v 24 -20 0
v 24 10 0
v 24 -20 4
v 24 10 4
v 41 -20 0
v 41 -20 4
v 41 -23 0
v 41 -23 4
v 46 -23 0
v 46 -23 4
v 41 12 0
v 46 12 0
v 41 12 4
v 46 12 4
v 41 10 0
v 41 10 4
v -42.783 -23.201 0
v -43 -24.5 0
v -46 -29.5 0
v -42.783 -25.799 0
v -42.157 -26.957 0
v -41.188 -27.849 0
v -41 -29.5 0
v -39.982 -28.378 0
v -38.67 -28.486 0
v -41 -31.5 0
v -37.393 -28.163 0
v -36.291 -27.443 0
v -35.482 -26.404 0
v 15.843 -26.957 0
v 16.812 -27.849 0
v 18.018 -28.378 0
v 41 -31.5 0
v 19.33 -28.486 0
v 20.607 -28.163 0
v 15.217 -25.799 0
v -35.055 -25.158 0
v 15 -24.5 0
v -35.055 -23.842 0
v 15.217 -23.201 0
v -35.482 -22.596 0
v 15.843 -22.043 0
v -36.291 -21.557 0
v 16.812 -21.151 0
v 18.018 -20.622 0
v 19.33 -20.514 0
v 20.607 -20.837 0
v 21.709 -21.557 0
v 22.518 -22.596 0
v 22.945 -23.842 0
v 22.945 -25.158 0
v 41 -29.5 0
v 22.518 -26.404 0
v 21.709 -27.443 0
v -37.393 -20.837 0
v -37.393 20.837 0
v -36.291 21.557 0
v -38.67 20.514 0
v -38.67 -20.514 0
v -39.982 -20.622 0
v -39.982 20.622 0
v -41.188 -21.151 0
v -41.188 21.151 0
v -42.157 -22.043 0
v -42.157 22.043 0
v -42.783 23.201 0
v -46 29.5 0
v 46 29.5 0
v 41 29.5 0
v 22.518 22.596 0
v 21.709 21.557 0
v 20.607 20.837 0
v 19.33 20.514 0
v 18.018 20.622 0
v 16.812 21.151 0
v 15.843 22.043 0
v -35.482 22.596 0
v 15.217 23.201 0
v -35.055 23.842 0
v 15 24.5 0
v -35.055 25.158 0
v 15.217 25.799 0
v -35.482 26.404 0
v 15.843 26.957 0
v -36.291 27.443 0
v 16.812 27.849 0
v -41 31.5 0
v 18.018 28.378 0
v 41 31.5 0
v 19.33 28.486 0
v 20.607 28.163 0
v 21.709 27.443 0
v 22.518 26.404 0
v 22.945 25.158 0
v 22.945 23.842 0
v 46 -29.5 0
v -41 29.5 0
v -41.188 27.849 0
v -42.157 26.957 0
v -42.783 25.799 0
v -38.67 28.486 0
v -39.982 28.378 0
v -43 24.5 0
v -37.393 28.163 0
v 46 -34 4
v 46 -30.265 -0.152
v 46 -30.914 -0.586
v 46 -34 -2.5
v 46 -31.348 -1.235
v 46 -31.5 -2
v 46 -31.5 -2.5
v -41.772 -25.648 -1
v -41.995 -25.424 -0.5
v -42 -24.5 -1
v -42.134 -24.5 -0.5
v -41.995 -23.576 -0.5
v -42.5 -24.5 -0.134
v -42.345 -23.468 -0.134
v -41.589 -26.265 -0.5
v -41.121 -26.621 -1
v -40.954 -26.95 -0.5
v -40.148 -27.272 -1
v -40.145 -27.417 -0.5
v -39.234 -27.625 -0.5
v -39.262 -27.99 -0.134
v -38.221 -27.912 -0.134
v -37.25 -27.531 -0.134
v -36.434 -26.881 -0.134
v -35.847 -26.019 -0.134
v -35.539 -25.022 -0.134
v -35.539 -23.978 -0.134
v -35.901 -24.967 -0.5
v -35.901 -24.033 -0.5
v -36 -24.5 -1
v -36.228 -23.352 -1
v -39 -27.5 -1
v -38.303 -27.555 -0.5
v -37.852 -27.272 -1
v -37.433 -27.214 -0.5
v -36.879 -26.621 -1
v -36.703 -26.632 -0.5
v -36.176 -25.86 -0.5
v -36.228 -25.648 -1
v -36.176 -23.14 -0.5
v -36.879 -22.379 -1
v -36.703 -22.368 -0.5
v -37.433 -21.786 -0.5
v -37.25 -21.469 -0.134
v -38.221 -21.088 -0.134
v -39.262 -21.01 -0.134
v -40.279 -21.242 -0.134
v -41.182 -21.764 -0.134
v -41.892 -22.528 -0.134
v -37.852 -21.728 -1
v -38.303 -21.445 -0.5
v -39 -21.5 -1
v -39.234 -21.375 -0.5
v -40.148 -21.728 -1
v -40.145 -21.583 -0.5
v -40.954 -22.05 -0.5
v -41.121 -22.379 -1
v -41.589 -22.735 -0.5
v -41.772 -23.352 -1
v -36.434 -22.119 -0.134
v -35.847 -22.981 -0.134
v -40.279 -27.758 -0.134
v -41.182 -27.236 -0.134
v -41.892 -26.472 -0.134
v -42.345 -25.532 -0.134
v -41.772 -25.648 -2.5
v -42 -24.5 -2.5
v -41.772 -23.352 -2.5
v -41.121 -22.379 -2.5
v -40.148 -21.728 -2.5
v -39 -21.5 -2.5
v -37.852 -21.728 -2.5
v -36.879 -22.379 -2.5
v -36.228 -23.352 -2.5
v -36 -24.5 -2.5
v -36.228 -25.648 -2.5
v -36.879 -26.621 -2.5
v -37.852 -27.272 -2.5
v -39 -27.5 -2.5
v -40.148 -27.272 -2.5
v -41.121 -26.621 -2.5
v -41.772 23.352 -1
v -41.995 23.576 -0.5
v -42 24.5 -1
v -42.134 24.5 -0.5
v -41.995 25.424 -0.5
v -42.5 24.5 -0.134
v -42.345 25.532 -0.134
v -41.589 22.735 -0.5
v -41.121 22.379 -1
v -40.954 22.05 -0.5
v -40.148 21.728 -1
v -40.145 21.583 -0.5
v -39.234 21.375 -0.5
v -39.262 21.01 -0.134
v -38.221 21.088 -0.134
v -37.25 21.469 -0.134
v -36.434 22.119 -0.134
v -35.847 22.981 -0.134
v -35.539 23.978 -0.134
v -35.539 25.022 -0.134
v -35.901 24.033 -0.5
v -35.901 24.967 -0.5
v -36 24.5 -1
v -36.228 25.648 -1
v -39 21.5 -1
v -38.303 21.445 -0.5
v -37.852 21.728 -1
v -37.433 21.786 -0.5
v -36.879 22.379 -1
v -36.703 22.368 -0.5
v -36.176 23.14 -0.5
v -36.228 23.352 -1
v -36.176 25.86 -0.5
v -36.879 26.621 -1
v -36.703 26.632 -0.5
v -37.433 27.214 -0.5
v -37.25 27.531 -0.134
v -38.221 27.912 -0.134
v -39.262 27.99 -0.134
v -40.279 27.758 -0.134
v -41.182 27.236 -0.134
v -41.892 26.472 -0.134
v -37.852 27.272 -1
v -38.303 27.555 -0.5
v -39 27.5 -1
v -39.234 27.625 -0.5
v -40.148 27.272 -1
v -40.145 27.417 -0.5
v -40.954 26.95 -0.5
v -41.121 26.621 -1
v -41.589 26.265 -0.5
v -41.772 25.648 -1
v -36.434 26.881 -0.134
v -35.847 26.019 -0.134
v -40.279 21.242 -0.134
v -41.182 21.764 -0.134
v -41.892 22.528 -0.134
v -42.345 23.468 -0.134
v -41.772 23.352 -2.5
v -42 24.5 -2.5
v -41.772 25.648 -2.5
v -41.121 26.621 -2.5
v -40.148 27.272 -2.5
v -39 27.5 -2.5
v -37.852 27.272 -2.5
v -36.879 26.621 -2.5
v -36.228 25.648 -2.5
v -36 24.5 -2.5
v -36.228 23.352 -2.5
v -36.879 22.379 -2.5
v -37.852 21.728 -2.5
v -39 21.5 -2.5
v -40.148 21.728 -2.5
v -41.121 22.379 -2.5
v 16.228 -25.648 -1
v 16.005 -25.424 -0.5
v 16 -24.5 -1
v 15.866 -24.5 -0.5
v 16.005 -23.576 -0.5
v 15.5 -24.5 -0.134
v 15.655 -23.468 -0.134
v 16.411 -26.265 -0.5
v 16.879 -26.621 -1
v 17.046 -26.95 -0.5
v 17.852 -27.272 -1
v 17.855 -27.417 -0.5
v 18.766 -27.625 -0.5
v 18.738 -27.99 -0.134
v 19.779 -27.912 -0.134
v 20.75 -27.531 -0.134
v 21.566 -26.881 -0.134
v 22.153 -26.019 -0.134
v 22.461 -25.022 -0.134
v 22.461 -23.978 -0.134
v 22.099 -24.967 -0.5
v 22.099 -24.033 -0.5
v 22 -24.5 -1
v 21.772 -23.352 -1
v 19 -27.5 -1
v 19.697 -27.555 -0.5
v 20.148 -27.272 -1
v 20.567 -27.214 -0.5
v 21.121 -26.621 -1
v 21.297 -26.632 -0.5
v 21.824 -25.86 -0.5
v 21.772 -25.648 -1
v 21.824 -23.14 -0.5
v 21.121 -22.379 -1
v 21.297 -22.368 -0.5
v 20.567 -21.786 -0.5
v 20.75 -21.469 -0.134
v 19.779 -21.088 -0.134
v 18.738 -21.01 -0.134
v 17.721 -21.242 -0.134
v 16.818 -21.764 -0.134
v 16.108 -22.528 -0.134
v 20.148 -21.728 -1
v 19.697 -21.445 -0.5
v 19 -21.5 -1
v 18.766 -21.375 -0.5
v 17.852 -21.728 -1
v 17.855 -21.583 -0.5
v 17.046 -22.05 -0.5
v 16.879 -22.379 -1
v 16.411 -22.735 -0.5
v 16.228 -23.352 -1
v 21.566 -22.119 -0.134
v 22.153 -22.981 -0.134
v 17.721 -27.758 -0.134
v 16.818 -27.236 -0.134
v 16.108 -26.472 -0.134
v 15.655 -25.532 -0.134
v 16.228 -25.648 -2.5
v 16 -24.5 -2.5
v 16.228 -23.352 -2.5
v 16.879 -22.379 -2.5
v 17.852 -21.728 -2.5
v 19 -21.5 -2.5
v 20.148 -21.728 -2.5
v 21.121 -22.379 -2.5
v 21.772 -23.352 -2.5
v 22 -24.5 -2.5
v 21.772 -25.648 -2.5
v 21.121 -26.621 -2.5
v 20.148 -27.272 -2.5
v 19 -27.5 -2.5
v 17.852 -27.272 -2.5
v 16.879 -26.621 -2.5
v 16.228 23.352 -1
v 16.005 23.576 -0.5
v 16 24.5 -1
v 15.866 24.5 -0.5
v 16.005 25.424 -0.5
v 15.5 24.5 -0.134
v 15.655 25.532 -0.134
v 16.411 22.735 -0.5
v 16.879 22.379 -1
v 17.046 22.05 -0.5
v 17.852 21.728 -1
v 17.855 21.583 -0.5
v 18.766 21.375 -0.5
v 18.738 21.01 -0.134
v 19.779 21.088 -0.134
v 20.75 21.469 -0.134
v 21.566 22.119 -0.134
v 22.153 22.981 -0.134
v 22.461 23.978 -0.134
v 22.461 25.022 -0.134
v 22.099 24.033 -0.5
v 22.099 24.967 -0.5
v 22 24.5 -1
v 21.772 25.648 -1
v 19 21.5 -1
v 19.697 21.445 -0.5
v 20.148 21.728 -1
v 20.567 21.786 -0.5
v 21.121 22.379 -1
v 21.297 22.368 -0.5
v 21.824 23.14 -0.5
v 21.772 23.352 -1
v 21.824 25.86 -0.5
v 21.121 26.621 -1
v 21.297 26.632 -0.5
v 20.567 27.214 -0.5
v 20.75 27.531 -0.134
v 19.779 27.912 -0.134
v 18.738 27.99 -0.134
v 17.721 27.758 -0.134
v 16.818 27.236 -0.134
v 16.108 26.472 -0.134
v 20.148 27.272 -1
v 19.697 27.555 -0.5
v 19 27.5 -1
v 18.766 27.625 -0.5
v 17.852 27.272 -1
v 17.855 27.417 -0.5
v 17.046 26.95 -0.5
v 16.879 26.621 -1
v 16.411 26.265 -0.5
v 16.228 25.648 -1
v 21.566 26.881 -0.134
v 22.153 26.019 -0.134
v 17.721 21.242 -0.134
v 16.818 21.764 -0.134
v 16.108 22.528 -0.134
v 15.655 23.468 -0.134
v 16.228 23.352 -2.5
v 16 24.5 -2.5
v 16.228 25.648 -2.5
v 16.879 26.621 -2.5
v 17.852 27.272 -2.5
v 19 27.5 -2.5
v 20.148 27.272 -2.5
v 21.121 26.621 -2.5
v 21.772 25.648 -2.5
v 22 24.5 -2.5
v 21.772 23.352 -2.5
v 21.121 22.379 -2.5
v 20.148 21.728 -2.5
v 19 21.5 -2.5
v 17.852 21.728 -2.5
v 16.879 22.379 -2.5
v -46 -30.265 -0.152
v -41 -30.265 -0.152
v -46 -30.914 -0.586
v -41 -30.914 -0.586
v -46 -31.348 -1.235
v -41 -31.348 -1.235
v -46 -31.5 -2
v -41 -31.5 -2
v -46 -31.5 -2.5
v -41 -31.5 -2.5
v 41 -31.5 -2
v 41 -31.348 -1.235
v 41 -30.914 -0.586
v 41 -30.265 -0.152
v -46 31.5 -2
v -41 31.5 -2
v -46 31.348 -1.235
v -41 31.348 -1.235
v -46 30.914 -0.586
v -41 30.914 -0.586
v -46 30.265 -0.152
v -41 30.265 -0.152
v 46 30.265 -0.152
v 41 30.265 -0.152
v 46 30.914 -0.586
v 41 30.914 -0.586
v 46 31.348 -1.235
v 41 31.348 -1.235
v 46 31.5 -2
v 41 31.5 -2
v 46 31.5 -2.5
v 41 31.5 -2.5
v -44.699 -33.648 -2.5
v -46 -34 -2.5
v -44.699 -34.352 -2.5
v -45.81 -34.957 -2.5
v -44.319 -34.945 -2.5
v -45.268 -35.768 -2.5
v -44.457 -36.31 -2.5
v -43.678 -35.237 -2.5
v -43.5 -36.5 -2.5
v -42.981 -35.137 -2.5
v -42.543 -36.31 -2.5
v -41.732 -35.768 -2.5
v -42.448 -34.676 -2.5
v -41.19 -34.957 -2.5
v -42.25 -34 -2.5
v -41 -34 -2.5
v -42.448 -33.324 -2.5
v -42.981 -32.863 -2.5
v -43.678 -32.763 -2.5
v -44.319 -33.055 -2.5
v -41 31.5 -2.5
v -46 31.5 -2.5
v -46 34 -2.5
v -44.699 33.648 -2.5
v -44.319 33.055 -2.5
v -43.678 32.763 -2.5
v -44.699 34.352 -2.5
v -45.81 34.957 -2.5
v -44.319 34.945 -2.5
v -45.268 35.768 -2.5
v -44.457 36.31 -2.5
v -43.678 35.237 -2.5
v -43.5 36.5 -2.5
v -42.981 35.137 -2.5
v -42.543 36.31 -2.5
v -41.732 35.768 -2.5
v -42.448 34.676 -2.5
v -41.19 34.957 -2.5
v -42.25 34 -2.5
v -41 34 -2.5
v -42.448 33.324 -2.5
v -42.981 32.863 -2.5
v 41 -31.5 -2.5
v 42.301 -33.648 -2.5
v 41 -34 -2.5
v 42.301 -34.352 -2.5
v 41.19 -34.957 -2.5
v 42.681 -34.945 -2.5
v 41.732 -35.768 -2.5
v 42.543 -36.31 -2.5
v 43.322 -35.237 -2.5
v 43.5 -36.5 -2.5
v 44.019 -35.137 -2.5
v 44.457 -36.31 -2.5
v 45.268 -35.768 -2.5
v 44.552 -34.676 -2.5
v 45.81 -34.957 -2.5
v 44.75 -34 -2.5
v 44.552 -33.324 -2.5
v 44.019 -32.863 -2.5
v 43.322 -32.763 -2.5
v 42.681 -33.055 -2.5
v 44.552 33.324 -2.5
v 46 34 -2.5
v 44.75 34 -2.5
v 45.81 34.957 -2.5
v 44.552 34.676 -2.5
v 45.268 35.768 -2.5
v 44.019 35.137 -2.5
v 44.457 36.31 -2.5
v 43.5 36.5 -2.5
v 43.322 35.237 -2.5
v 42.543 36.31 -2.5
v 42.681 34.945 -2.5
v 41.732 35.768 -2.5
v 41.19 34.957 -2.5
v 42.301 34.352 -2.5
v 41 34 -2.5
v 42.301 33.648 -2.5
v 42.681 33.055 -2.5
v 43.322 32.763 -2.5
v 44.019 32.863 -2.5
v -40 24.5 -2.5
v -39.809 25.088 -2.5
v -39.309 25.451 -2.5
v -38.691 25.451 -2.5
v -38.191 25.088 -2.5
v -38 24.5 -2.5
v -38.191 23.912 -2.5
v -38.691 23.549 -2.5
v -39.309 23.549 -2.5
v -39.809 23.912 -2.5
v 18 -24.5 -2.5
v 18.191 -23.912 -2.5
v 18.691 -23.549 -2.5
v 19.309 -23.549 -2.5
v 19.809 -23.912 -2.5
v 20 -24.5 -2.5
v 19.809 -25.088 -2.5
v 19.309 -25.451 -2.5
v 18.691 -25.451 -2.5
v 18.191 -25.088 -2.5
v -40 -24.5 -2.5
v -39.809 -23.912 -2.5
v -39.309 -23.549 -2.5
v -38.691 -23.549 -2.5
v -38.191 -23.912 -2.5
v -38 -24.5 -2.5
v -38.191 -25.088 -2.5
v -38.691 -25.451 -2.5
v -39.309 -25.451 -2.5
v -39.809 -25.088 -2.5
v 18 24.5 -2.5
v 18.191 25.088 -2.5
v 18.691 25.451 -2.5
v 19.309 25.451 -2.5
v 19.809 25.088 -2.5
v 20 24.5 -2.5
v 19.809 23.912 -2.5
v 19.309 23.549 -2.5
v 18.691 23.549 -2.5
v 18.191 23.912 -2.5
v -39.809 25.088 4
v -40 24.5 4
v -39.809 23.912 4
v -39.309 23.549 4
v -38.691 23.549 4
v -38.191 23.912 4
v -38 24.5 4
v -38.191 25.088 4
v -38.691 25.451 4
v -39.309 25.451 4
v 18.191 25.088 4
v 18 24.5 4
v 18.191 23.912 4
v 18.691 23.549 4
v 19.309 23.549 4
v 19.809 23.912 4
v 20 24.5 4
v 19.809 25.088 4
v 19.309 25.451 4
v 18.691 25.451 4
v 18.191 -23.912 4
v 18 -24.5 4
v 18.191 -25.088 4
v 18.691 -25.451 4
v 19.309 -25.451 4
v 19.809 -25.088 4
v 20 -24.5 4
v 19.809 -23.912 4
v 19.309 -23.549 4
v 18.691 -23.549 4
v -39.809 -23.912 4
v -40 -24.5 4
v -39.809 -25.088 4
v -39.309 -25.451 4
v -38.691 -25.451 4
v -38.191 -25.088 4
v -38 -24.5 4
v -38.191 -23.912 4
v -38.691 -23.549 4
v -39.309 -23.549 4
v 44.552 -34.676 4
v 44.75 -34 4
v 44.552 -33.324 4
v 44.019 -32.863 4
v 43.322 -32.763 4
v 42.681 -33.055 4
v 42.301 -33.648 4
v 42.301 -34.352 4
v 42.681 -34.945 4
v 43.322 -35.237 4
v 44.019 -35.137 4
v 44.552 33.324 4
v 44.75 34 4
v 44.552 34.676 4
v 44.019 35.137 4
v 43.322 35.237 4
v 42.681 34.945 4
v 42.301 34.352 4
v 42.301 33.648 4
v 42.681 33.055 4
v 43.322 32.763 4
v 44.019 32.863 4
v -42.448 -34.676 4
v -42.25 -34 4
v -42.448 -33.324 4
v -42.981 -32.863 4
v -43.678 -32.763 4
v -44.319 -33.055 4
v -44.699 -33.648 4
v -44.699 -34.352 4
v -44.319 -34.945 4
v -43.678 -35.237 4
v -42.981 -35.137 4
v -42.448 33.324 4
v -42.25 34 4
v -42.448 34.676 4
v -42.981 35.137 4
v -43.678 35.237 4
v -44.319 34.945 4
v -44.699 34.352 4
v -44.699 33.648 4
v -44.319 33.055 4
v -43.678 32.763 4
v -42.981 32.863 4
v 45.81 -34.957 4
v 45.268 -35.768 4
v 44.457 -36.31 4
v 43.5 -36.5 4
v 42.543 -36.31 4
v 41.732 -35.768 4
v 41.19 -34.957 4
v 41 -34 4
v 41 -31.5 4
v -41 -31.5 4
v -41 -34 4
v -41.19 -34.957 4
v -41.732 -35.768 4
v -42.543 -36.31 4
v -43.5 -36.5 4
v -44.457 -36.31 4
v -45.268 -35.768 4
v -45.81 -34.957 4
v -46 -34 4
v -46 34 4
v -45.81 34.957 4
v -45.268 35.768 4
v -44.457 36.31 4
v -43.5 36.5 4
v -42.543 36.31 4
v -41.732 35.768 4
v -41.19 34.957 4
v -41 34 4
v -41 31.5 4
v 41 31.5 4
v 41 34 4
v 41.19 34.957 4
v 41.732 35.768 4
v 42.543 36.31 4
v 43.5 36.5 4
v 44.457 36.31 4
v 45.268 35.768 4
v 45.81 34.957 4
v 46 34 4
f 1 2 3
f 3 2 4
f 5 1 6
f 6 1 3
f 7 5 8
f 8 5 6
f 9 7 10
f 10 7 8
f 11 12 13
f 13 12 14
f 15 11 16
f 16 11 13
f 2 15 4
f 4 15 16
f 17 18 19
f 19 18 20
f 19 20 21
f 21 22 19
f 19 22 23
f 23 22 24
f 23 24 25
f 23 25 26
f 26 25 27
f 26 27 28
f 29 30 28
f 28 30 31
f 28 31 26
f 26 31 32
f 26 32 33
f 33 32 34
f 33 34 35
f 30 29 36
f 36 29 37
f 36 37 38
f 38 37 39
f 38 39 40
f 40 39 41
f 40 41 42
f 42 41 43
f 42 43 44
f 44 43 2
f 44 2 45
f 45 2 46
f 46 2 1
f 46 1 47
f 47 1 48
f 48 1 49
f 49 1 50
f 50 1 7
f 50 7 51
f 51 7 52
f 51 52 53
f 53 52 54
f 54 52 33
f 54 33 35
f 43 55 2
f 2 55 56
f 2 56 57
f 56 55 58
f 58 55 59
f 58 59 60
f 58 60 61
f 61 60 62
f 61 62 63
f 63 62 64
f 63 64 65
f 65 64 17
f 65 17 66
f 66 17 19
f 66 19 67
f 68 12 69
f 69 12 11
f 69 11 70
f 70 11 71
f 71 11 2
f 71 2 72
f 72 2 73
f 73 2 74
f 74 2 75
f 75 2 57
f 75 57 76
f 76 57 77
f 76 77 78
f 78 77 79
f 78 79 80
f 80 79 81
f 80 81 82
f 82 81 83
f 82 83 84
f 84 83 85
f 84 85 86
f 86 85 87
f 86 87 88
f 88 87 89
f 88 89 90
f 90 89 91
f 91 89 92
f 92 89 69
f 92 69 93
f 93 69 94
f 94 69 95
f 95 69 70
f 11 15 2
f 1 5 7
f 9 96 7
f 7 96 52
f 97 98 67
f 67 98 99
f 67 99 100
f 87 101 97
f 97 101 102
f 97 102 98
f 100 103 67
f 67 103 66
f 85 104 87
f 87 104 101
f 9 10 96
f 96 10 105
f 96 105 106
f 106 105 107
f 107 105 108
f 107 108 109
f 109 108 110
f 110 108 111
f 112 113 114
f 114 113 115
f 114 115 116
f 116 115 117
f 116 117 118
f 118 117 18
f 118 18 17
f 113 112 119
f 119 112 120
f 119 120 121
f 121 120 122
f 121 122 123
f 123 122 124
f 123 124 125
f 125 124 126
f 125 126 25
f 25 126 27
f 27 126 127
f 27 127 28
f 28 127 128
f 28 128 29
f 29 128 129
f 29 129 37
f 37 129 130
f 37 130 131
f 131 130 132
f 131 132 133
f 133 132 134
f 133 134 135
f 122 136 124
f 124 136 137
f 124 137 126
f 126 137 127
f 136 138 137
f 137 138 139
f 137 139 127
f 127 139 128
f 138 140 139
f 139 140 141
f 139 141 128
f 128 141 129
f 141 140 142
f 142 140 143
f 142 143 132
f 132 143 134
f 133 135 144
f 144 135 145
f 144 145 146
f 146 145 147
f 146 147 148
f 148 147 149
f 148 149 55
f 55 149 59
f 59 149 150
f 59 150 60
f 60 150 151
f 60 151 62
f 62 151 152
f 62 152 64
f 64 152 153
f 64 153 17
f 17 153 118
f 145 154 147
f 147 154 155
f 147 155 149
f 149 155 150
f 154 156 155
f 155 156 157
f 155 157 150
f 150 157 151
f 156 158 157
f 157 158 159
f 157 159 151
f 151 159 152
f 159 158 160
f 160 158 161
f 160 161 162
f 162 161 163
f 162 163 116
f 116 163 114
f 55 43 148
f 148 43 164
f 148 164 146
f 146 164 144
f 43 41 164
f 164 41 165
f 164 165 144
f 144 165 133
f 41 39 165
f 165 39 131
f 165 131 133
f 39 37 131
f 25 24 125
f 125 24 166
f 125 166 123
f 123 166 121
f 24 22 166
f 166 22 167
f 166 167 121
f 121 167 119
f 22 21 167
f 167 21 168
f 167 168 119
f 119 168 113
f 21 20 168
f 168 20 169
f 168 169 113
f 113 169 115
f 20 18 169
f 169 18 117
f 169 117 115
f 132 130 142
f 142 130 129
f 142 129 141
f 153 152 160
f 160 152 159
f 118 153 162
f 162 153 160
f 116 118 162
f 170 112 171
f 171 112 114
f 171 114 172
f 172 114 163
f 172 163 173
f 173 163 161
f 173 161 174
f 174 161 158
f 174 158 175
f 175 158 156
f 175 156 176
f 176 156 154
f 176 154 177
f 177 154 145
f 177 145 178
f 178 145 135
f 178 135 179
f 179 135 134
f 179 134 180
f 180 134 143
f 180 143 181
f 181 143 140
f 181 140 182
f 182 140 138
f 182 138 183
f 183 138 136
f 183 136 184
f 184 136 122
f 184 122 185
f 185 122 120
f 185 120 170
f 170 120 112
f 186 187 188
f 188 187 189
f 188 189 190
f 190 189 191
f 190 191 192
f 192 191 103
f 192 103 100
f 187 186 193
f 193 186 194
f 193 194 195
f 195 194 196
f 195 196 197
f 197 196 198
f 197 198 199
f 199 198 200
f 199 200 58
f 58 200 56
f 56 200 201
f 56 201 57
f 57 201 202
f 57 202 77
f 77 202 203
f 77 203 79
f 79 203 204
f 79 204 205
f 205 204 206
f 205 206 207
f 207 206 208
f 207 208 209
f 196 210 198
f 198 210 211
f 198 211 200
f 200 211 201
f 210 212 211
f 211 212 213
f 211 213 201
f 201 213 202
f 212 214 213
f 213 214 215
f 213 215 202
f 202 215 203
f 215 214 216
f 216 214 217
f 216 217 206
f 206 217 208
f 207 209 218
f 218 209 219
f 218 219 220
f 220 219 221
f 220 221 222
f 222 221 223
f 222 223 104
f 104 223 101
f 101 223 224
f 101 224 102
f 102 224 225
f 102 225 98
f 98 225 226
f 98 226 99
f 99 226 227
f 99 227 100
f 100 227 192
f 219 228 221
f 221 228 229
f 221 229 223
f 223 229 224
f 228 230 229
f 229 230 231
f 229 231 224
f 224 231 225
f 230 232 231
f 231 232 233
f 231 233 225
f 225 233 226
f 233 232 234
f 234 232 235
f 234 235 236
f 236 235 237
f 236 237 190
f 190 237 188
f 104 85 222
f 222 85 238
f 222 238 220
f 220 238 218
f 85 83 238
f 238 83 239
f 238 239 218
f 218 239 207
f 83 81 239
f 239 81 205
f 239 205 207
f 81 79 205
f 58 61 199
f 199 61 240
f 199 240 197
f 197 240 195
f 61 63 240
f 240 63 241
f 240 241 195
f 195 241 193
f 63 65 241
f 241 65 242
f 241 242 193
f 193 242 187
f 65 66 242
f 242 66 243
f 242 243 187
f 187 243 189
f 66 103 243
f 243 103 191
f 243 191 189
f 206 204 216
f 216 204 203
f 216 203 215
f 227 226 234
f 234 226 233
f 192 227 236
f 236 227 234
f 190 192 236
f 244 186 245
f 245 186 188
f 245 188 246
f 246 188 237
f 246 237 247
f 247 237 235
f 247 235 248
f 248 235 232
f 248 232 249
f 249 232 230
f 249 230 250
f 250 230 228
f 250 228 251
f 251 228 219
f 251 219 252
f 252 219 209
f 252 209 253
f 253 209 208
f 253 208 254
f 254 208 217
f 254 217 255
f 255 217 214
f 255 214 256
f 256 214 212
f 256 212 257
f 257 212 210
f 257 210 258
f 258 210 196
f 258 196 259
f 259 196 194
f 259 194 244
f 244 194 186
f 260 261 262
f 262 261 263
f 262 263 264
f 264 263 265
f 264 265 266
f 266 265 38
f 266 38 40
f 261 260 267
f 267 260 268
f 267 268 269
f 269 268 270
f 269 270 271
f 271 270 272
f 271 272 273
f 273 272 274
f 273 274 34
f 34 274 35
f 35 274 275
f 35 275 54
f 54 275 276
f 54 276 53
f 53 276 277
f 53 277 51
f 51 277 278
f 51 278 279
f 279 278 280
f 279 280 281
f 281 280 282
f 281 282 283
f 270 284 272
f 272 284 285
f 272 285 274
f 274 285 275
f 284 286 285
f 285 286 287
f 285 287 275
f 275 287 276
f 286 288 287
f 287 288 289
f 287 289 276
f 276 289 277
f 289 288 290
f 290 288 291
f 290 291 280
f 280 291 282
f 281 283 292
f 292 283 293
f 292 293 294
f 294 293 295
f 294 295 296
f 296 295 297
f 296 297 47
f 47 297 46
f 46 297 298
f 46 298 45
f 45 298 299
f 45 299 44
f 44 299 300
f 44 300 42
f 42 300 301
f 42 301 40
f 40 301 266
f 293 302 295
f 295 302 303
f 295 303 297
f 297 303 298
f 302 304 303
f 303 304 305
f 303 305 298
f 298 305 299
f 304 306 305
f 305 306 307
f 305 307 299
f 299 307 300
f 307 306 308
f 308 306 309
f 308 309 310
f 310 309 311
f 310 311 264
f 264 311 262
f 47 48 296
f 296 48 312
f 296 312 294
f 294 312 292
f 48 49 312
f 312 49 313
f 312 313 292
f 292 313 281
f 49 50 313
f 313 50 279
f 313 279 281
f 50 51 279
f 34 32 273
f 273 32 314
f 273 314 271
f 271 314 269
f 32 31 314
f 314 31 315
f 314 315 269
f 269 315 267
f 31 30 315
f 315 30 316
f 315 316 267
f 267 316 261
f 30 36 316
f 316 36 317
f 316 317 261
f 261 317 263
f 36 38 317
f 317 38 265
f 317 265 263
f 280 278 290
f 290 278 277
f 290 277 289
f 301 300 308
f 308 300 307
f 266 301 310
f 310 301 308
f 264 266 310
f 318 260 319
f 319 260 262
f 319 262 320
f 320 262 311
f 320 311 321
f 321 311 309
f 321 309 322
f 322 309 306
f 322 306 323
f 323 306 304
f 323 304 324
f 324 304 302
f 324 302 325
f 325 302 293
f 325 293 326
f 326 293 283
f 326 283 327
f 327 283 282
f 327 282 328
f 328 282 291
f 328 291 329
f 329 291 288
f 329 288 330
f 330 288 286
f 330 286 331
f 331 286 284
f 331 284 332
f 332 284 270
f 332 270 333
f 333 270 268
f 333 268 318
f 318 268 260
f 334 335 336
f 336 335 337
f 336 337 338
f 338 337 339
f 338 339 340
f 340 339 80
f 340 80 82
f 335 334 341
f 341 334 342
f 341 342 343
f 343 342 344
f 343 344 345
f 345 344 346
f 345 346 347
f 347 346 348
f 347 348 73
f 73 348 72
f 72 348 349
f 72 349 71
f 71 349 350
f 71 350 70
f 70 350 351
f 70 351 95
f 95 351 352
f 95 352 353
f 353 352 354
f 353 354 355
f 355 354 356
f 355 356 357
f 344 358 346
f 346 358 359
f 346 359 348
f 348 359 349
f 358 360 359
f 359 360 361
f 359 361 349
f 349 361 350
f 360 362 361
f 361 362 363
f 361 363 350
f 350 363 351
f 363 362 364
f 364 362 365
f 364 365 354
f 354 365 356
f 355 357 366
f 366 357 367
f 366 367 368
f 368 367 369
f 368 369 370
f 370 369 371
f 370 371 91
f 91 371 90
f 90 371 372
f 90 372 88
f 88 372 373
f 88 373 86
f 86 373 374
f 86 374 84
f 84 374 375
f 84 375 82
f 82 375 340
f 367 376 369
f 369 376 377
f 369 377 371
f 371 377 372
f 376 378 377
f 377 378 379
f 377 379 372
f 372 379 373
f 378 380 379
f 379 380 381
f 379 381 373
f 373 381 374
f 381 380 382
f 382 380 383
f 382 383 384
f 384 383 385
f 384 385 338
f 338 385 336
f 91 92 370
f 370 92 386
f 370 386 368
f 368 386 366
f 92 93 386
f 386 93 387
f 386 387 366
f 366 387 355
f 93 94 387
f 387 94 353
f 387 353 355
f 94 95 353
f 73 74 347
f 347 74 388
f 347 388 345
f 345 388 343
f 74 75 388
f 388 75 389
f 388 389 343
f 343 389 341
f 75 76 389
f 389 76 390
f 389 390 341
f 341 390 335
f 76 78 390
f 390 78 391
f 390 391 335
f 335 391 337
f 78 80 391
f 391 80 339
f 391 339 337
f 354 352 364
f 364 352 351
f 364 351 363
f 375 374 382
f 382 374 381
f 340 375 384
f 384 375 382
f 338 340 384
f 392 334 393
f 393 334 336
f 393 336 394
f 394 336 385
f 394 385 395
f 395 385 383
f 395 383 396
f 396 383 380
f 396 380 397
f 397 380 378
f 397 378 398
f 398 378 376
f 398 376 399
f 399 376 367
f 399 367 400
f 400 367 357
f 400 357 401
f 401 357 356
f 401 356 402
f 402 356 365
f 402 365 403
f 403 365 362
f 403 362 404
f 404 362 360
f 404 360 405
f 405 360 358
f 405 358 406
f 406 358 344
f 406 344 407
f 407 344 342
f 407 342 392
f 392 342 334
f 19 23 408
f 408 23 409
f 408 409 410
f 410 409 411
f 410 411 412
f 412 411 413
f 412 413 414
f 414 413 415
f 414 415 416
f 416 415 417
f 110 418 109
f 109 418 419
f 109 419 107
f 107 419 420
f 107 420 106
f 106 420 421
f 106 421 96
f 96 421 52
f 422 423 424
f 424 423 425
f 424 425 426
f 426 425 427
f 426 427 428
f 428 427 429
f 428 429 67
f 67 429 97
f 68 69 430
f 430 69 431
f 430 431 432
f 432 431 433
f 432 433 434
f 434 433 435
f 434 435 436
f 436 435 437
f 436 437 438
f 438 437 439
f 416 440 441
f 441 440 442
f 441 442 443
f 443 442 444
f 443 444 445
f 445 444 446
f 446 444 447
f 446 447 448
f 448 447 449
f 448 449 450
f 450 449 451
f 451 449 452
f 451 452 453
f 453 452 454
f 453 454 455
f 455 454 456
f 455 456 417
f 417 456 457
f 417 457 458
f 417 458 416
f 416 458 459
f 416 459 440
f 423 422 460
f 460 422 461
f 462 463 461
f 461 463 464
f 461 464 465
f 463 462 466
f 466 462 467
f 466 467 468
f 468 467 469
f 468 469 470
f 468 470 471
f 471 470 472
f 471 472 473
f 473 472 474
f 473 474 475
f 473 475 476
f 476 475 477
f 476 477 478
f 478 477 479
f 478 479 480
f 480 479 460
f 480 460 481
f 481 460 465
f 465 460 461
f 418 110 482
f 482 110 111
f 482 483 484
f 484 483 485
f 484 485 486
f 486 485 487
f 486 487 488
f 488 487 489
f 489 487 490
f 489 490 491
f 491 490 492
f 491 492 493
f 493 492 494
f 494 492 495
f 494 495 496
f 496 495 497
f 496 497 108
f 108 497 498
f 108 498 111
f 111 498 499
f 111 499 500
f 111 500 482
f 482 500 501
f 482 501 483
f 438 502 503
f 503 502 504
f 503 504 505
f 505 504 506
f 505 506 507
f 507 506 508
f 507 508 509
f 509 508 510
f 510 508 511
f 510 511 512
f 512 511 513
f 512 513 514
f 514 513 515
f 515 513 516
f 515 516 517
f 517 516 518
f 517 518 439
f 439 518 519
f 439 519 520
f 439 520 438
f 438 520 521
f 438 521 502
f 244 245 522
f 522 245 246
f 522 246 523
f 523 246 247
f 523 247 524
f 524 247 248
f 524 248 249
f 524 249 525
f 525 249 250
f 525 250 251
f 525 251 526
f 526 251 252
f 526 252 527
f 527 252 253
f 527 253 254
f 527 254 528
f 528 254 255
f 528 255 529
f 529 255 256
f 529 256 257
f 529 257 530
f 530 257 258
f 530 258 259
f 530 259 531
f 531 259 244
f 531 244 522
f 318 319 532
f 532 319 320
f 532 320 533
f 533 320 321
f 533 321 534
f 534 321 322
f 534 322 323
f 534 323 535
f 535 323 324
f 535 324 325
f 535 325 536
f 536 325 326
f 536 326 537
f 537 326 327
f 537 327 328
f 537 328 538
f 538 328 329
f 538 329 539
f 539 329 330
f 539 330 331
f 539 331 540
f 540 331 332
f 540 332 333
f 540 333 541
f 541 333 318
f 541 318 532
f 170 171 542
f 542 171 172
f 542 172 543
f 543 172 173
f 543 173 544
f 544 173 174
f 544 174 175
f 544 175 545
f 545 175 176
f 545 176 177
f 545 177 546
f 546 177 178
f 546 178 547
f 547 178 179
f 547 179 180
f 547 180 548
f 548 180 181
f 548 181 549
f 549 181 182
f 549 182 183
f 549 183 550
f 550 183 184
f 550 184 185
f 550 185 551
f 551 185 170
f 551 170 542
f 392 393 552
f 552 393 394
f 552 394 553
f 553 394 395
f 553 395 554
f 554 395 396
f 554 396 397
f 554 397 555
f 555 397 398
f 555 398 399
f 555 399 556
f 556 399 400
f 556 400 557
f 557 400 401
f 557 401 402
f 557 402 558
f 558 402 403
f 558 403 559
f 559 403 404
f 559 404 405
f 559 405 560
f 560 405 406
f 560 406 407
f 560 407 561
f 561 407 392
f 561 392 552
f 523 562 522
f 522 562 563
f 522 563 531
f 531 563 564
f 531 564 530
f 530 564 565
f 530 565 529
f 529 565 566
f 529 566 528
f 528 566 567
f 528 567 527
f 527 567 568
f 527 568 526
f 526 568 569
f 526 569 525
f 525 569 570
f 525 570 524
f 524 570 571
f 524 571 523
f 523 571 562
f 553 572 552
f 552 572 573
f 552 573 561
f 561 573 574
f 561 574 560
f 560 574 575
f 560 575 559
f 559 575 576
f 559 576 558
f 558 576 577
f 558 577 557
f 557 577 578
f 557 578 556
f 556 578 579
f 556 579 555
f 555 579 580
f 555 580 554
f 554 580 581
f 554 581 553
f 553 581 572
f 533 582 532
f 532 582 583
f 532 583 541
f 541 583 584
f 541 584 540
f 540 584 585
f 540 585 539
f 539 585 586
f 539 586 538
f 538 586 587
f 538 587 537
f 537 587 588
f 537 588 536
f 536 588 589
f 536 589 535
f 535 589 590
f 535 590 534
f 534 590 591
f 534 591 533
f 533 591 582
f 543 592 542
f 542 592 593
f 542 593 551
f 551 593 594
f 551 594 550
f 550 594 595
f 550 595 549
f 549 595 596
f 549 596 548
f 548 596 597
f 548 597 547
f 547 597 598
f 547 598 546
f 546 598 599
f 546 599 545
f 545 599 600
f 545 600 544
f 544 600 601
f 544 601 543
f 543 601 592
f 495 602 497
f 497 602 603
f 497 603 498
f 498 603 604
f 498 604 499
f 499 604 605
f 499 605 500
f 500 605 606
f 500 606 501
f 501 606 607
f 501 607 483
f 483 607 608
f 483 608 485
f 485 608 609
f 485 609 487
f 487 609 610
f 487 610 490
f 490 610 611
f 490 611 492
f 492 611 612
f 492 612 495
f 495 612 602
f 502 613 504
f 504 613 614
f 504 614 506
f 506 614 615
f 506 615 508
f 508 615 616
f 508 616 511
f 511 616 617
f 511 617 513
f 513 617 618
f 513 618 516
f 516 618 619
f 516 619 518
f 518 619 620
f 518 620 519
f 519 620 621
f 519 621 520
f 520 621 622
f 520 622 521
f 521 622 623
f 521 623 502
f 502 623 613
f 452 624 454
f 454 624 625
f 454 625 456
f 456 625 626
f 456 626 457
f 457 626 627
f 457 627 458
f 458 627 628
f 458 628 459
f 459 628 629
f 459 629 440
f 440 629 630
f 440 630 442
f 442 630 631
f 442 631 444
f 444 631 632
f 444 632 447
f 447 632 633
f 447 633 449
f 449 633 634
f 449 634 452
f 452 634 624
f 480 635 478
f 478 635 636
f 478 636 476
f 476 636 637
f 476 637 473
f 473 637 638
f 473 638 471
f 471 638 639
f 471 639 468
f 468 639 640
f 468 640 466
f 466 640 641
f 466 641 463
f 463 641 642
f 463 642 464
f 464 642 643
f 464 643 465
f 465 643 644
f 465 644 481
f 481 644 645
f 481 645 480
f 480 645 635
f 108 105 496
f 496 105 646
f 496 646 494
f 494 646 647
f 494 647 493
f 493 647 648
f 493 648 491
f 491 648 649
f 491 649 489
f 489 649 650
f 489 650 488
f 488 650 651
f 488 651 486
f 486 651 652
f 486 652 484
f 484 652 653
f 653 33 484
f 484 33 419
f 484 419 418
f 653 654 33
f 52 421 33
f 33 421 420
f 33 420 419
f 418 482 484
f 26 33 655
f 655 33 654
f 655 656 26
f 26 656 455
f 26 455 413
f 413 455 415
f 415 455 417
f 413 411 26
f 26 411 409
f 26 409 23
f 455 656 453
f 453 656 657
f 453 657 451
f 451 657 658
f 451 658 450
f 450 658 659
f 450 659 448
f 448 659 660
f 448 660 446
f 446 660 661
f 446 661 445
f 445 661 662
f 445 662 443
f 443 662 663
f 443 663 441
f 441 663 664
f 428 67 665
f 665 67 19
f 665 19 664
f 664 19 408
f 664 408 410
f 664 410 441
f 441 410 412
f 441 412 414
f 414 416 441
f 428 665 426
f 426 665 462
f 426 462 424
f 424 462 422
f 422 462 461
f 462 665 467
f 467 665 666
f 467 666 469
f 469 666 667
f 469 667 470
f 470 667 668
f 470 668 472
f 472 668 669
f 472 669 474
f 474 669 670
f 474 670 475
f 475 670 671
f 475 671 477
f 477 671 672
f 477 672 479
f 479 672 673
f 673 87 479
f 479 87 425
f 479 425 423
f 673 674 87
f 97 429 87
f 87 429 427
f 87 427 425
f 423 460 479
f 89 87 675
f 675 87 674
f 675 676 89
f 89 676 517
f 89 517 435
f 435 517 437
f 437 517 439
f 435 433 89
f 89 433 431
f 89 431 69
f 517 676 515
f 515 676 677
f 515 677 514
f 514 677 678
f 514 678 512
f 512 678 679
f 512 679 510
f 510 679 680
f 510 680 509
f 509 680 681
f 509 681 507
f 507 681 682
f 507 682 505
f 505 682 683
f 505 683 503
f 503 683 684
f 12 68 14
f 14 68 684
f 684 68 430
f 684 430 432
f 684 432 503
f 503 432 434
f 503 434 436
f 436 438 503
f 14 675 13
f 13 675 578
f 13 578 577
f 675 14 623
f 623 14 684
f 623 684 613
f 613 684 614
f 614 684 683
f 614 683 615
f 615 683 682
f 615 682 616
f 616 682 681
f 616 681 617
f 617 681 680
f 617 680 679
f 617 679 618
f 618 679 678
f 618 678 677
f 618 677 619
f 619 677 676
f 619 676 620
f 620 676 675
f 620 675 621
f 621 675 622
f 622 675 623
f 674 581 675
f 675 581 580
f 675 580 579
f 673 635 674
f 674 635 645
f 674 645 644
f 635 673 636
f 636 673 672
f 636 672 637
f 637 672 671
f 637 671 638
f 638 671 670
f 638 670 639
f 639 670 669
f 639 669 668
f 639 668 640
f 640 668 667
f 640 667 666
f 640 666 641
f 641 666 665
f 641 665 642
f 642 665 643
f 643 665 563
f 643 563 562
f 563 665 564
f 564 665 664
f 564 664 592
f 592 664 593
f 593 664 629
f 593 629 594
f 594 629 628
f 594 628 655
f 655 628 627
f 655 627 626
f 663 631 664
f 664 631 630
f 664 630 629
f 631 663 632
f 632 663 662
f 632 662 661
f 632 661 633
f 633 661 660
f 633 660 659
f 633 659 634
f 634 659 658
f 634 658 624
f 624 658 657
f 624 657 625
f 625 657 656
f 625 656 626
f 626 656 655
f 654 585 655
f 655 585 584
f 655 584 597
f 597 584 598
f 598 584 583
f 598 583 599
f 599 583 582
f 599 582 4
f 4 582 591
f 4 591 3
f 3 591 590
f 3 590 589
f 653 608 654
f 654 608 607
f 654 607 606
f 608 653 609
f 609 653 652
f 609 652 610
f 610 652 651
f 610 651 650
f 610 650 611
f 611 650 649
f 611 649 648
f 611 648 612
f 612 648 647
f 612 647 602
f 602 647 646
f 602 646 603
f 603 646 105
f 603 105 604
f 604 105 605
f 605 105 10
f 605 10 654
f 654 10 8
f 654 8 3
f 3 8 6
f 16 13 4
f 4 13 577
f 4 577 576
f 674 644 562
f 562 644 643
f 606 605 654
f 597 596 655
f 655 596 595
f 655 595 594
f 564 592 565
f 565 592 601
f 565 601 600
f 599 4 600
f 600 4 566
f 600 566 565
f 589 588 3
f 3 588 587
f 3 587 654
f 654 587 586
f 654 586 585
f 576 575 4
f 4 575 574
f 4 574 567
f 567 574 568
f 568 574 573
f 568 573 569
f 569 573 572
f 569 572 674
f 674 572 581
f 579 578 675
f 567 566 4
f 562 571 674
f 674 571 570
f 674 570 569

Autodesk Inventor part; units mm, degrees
ref_plane "YZ Plane" through (0, 0, 0) normal (1, 0, 0) x (0, 1, 0)
ref_plane "XZ Plane" through (0, 0, 0) normal (0, 1, 0) x (-1, 0, 0)
ref_plane "XY Plane" through (0, 0, 0) normal (0, 0, 1) x (1, 0, 0)
sketch "스케치1" plane through (0, 0, 0) normal (0, 0, 1) x (1, 0, 0)
  line L0 (-46, -31.5) -> (46, -31.5)
  line L1 (46, -31.5) -> (46, 31.5)
  line L2 (46, 31.5) -> (-46, 31.5)
  line L3 (-46, 31.5) -> (-46, -31.5)
  line L4 (-46, -31.5) -> (46, 31.5) construction
  line L5 (46, -31.5) -> (-46, 31.5) construction
  line L6 (-42.5, 28) -> (42.5, 28) construction
  line L7 (42.5, 28) -> (42.5, -28) construction
  line L8 (42.5, -28) -> (-42.5, -28) construction
  line L9 (-42.5, -28) -> (-42.5, 28) construction
  line L10 (-42.5, 28) -> (42.5, -28) construction
  line L11 (42.5, 28) -> (-42.5, -28) construction
  circle A0 centre (-39, -24.5) radius 1
  circle A1 centre (19, -24.5) radius 1
  line L12 (0, 0) -> (14.8173, 0)
  circle A2 centre (-39, 24.5) radius 1
  circle A3 centre (19, 24.5) radius 1
  line L13 (-46, 31.5) -> (-41, 31.5)
  line L14 (-41, 31.5) -> (-41, 34)
  line L15 (-41, 34) -> (-46, 34) construction
  line L16 (-46, 34) -> (-46, 31.5)
  circle A4 centre (-43.5, 34) radius 2.5
  circle A5 centre (-43.5, 34) radius 1.25
  line L17 (0, 0) -> (0, 10.4922)
  line L18 (46, 31.5) -> (41, 31.5)
  line L19 (41, 31.5) -> (41, 34)
  line L20 (41, 34) -> (46, 34) construction
  line L21 (46, 34) -> (46, 31.5)
  circle A6 centre (43.5, 34) radius 2.5
  circle A7 centre (43.5, 34) radius 1.25
  line L22 (46, -31.5) -> (-46, -31.5)
  line L23 (-46, -31.5) -> (-41, -31.5)
  line L24 (-41, -31.5) -> (-41, -34)
  line L25 (-41, -34) -> (-46, -34) construction
  line L26 (-46, -34) -> (-46, -31.5)
  circle A8 centre (-43.5, -34) radius 2.5
  circle A9 centre (-43.5, -34) radius 1.25
  line L27 (41, -31.5) -> (41, -34)
  circle A10 centre (43.5, -34) radius 1.25
  line L28 (41, -34) -> (46, -34) construction
  line L29 (46, -34) -> (46, -31.5)
  circle A11 centre (43.5, -34) radius 2.5
  line L30 (46, -31.5) -> (41, -31.5)
  dimension "d0" = 92
  dimension "d1" = 63
  dimension "d2" = 85
  dimension "d3" = 56
  dimension "d4" = 3.5
  dimension "d5" = 3.5
  dimension "d6" = 2
  dimension "d7" = 2
  dimension "d8" = 58
  dimension "d9" = 3.5
  dimension "d10" = 5
  dimension "d11" = 2.5
  dimension "d12" = 2.5
extrude "돌출1" add sketch "스케치1" along normal blind 4
sketch "스케치3" plane through (0, 0, 0) normal (0, 0, -1) x (-1, 0, 0)
  circle A0 centre (-19, 24.5) radius 1 projected
  circle A1 centre (-19, 24.5) radius 3
  circle A2 centre (39, 24.5) radius 1 projected
  circle A3 centre (39, 24.5) radius 3
  circle A4 centre (-19, -24.5) radius 1 projected
  circle A5 centre (-19, -24.5) radius 3
  circle A6 centre (39, -24.5) radius 1 projected
  circle A7 centre (39, -24.5) radius 3
  point P0 (0, 0)
  dimension "d24" = 6
  dimension "d25" = 6
  dimension "d26" = 6
  dimension "d27" = 6
extrude "돌출3" add sketch "스케치3" along normal blind 2.5
extrude "돌출4" add sketch "스케치1" against normal blind 2.5 contours L24 A8 L0 | L0 A11 L27 | A8 L26 L0 | A8 | L0 L29 A11 | A11 | L16 A4 L2 | L2 A6 L21 | A4 L14 L2 | A4 | L2 L19 A6 | A6
fillet "모깎기1" radius 2 4 edges at (43.5, 31.5, 0) (-43.5, 31.5, 0) (43.5, -31.5, 0) (-43.5, -31.5, 0)
fillet "모깎기2" radius 1 4 edges at (22, 24.5, 0) (22, -24.5, 0) (-36, 24.5, 0) (-36, -24.5, 0)
sketch "스케치4" plane through (0, 0, 4) normal (0, 0, 1) x (1, 0, 0)
  line L0 (-46, 34) -> (-46, -34) projected
  line L1 (46, -29.5) -> (46, 29.5) projected
  line L2 (46, -34) -> (46, 34) projected
  line L3 (46, -20) -> (24, -20)
  line L4 (24, -20) -> (24, 10)
  line L5 (24, 10) -> (46, 10)
  line L6 (46, 10) -> (46, -20)
  line L7 (46, -20) -> (41, -20)
  line L8 (41, -20) -> (41, -23)
  line L9 (41, -23) -> (46, -23)
  line L10 (46, -23) -> (46, -20)
  line L11 (46, 10) -> (41, 10)
  line L12 (41, 10) -> (41, 12)
  line L13 (41, 12) -> (46, 12)
  line L14 (46, 12) -> (46, 10)
  point P0 (46, 0)
  point P1 (46, -20)
  point P2 (46, 10)
  point P3 (46, 0)
  dimension "d40" = 30
  dimension "d42" = 10
  dimension "d43" = 3
  dimension "d44" = 5
  dimension "d45" = 22
  dimension "d46" = 5
  dimension "d47" = 2
extrude "돌출5" cut sketch "스케치4" against normal blind 10
properties part number "라즈베리파이 고정 커버"
